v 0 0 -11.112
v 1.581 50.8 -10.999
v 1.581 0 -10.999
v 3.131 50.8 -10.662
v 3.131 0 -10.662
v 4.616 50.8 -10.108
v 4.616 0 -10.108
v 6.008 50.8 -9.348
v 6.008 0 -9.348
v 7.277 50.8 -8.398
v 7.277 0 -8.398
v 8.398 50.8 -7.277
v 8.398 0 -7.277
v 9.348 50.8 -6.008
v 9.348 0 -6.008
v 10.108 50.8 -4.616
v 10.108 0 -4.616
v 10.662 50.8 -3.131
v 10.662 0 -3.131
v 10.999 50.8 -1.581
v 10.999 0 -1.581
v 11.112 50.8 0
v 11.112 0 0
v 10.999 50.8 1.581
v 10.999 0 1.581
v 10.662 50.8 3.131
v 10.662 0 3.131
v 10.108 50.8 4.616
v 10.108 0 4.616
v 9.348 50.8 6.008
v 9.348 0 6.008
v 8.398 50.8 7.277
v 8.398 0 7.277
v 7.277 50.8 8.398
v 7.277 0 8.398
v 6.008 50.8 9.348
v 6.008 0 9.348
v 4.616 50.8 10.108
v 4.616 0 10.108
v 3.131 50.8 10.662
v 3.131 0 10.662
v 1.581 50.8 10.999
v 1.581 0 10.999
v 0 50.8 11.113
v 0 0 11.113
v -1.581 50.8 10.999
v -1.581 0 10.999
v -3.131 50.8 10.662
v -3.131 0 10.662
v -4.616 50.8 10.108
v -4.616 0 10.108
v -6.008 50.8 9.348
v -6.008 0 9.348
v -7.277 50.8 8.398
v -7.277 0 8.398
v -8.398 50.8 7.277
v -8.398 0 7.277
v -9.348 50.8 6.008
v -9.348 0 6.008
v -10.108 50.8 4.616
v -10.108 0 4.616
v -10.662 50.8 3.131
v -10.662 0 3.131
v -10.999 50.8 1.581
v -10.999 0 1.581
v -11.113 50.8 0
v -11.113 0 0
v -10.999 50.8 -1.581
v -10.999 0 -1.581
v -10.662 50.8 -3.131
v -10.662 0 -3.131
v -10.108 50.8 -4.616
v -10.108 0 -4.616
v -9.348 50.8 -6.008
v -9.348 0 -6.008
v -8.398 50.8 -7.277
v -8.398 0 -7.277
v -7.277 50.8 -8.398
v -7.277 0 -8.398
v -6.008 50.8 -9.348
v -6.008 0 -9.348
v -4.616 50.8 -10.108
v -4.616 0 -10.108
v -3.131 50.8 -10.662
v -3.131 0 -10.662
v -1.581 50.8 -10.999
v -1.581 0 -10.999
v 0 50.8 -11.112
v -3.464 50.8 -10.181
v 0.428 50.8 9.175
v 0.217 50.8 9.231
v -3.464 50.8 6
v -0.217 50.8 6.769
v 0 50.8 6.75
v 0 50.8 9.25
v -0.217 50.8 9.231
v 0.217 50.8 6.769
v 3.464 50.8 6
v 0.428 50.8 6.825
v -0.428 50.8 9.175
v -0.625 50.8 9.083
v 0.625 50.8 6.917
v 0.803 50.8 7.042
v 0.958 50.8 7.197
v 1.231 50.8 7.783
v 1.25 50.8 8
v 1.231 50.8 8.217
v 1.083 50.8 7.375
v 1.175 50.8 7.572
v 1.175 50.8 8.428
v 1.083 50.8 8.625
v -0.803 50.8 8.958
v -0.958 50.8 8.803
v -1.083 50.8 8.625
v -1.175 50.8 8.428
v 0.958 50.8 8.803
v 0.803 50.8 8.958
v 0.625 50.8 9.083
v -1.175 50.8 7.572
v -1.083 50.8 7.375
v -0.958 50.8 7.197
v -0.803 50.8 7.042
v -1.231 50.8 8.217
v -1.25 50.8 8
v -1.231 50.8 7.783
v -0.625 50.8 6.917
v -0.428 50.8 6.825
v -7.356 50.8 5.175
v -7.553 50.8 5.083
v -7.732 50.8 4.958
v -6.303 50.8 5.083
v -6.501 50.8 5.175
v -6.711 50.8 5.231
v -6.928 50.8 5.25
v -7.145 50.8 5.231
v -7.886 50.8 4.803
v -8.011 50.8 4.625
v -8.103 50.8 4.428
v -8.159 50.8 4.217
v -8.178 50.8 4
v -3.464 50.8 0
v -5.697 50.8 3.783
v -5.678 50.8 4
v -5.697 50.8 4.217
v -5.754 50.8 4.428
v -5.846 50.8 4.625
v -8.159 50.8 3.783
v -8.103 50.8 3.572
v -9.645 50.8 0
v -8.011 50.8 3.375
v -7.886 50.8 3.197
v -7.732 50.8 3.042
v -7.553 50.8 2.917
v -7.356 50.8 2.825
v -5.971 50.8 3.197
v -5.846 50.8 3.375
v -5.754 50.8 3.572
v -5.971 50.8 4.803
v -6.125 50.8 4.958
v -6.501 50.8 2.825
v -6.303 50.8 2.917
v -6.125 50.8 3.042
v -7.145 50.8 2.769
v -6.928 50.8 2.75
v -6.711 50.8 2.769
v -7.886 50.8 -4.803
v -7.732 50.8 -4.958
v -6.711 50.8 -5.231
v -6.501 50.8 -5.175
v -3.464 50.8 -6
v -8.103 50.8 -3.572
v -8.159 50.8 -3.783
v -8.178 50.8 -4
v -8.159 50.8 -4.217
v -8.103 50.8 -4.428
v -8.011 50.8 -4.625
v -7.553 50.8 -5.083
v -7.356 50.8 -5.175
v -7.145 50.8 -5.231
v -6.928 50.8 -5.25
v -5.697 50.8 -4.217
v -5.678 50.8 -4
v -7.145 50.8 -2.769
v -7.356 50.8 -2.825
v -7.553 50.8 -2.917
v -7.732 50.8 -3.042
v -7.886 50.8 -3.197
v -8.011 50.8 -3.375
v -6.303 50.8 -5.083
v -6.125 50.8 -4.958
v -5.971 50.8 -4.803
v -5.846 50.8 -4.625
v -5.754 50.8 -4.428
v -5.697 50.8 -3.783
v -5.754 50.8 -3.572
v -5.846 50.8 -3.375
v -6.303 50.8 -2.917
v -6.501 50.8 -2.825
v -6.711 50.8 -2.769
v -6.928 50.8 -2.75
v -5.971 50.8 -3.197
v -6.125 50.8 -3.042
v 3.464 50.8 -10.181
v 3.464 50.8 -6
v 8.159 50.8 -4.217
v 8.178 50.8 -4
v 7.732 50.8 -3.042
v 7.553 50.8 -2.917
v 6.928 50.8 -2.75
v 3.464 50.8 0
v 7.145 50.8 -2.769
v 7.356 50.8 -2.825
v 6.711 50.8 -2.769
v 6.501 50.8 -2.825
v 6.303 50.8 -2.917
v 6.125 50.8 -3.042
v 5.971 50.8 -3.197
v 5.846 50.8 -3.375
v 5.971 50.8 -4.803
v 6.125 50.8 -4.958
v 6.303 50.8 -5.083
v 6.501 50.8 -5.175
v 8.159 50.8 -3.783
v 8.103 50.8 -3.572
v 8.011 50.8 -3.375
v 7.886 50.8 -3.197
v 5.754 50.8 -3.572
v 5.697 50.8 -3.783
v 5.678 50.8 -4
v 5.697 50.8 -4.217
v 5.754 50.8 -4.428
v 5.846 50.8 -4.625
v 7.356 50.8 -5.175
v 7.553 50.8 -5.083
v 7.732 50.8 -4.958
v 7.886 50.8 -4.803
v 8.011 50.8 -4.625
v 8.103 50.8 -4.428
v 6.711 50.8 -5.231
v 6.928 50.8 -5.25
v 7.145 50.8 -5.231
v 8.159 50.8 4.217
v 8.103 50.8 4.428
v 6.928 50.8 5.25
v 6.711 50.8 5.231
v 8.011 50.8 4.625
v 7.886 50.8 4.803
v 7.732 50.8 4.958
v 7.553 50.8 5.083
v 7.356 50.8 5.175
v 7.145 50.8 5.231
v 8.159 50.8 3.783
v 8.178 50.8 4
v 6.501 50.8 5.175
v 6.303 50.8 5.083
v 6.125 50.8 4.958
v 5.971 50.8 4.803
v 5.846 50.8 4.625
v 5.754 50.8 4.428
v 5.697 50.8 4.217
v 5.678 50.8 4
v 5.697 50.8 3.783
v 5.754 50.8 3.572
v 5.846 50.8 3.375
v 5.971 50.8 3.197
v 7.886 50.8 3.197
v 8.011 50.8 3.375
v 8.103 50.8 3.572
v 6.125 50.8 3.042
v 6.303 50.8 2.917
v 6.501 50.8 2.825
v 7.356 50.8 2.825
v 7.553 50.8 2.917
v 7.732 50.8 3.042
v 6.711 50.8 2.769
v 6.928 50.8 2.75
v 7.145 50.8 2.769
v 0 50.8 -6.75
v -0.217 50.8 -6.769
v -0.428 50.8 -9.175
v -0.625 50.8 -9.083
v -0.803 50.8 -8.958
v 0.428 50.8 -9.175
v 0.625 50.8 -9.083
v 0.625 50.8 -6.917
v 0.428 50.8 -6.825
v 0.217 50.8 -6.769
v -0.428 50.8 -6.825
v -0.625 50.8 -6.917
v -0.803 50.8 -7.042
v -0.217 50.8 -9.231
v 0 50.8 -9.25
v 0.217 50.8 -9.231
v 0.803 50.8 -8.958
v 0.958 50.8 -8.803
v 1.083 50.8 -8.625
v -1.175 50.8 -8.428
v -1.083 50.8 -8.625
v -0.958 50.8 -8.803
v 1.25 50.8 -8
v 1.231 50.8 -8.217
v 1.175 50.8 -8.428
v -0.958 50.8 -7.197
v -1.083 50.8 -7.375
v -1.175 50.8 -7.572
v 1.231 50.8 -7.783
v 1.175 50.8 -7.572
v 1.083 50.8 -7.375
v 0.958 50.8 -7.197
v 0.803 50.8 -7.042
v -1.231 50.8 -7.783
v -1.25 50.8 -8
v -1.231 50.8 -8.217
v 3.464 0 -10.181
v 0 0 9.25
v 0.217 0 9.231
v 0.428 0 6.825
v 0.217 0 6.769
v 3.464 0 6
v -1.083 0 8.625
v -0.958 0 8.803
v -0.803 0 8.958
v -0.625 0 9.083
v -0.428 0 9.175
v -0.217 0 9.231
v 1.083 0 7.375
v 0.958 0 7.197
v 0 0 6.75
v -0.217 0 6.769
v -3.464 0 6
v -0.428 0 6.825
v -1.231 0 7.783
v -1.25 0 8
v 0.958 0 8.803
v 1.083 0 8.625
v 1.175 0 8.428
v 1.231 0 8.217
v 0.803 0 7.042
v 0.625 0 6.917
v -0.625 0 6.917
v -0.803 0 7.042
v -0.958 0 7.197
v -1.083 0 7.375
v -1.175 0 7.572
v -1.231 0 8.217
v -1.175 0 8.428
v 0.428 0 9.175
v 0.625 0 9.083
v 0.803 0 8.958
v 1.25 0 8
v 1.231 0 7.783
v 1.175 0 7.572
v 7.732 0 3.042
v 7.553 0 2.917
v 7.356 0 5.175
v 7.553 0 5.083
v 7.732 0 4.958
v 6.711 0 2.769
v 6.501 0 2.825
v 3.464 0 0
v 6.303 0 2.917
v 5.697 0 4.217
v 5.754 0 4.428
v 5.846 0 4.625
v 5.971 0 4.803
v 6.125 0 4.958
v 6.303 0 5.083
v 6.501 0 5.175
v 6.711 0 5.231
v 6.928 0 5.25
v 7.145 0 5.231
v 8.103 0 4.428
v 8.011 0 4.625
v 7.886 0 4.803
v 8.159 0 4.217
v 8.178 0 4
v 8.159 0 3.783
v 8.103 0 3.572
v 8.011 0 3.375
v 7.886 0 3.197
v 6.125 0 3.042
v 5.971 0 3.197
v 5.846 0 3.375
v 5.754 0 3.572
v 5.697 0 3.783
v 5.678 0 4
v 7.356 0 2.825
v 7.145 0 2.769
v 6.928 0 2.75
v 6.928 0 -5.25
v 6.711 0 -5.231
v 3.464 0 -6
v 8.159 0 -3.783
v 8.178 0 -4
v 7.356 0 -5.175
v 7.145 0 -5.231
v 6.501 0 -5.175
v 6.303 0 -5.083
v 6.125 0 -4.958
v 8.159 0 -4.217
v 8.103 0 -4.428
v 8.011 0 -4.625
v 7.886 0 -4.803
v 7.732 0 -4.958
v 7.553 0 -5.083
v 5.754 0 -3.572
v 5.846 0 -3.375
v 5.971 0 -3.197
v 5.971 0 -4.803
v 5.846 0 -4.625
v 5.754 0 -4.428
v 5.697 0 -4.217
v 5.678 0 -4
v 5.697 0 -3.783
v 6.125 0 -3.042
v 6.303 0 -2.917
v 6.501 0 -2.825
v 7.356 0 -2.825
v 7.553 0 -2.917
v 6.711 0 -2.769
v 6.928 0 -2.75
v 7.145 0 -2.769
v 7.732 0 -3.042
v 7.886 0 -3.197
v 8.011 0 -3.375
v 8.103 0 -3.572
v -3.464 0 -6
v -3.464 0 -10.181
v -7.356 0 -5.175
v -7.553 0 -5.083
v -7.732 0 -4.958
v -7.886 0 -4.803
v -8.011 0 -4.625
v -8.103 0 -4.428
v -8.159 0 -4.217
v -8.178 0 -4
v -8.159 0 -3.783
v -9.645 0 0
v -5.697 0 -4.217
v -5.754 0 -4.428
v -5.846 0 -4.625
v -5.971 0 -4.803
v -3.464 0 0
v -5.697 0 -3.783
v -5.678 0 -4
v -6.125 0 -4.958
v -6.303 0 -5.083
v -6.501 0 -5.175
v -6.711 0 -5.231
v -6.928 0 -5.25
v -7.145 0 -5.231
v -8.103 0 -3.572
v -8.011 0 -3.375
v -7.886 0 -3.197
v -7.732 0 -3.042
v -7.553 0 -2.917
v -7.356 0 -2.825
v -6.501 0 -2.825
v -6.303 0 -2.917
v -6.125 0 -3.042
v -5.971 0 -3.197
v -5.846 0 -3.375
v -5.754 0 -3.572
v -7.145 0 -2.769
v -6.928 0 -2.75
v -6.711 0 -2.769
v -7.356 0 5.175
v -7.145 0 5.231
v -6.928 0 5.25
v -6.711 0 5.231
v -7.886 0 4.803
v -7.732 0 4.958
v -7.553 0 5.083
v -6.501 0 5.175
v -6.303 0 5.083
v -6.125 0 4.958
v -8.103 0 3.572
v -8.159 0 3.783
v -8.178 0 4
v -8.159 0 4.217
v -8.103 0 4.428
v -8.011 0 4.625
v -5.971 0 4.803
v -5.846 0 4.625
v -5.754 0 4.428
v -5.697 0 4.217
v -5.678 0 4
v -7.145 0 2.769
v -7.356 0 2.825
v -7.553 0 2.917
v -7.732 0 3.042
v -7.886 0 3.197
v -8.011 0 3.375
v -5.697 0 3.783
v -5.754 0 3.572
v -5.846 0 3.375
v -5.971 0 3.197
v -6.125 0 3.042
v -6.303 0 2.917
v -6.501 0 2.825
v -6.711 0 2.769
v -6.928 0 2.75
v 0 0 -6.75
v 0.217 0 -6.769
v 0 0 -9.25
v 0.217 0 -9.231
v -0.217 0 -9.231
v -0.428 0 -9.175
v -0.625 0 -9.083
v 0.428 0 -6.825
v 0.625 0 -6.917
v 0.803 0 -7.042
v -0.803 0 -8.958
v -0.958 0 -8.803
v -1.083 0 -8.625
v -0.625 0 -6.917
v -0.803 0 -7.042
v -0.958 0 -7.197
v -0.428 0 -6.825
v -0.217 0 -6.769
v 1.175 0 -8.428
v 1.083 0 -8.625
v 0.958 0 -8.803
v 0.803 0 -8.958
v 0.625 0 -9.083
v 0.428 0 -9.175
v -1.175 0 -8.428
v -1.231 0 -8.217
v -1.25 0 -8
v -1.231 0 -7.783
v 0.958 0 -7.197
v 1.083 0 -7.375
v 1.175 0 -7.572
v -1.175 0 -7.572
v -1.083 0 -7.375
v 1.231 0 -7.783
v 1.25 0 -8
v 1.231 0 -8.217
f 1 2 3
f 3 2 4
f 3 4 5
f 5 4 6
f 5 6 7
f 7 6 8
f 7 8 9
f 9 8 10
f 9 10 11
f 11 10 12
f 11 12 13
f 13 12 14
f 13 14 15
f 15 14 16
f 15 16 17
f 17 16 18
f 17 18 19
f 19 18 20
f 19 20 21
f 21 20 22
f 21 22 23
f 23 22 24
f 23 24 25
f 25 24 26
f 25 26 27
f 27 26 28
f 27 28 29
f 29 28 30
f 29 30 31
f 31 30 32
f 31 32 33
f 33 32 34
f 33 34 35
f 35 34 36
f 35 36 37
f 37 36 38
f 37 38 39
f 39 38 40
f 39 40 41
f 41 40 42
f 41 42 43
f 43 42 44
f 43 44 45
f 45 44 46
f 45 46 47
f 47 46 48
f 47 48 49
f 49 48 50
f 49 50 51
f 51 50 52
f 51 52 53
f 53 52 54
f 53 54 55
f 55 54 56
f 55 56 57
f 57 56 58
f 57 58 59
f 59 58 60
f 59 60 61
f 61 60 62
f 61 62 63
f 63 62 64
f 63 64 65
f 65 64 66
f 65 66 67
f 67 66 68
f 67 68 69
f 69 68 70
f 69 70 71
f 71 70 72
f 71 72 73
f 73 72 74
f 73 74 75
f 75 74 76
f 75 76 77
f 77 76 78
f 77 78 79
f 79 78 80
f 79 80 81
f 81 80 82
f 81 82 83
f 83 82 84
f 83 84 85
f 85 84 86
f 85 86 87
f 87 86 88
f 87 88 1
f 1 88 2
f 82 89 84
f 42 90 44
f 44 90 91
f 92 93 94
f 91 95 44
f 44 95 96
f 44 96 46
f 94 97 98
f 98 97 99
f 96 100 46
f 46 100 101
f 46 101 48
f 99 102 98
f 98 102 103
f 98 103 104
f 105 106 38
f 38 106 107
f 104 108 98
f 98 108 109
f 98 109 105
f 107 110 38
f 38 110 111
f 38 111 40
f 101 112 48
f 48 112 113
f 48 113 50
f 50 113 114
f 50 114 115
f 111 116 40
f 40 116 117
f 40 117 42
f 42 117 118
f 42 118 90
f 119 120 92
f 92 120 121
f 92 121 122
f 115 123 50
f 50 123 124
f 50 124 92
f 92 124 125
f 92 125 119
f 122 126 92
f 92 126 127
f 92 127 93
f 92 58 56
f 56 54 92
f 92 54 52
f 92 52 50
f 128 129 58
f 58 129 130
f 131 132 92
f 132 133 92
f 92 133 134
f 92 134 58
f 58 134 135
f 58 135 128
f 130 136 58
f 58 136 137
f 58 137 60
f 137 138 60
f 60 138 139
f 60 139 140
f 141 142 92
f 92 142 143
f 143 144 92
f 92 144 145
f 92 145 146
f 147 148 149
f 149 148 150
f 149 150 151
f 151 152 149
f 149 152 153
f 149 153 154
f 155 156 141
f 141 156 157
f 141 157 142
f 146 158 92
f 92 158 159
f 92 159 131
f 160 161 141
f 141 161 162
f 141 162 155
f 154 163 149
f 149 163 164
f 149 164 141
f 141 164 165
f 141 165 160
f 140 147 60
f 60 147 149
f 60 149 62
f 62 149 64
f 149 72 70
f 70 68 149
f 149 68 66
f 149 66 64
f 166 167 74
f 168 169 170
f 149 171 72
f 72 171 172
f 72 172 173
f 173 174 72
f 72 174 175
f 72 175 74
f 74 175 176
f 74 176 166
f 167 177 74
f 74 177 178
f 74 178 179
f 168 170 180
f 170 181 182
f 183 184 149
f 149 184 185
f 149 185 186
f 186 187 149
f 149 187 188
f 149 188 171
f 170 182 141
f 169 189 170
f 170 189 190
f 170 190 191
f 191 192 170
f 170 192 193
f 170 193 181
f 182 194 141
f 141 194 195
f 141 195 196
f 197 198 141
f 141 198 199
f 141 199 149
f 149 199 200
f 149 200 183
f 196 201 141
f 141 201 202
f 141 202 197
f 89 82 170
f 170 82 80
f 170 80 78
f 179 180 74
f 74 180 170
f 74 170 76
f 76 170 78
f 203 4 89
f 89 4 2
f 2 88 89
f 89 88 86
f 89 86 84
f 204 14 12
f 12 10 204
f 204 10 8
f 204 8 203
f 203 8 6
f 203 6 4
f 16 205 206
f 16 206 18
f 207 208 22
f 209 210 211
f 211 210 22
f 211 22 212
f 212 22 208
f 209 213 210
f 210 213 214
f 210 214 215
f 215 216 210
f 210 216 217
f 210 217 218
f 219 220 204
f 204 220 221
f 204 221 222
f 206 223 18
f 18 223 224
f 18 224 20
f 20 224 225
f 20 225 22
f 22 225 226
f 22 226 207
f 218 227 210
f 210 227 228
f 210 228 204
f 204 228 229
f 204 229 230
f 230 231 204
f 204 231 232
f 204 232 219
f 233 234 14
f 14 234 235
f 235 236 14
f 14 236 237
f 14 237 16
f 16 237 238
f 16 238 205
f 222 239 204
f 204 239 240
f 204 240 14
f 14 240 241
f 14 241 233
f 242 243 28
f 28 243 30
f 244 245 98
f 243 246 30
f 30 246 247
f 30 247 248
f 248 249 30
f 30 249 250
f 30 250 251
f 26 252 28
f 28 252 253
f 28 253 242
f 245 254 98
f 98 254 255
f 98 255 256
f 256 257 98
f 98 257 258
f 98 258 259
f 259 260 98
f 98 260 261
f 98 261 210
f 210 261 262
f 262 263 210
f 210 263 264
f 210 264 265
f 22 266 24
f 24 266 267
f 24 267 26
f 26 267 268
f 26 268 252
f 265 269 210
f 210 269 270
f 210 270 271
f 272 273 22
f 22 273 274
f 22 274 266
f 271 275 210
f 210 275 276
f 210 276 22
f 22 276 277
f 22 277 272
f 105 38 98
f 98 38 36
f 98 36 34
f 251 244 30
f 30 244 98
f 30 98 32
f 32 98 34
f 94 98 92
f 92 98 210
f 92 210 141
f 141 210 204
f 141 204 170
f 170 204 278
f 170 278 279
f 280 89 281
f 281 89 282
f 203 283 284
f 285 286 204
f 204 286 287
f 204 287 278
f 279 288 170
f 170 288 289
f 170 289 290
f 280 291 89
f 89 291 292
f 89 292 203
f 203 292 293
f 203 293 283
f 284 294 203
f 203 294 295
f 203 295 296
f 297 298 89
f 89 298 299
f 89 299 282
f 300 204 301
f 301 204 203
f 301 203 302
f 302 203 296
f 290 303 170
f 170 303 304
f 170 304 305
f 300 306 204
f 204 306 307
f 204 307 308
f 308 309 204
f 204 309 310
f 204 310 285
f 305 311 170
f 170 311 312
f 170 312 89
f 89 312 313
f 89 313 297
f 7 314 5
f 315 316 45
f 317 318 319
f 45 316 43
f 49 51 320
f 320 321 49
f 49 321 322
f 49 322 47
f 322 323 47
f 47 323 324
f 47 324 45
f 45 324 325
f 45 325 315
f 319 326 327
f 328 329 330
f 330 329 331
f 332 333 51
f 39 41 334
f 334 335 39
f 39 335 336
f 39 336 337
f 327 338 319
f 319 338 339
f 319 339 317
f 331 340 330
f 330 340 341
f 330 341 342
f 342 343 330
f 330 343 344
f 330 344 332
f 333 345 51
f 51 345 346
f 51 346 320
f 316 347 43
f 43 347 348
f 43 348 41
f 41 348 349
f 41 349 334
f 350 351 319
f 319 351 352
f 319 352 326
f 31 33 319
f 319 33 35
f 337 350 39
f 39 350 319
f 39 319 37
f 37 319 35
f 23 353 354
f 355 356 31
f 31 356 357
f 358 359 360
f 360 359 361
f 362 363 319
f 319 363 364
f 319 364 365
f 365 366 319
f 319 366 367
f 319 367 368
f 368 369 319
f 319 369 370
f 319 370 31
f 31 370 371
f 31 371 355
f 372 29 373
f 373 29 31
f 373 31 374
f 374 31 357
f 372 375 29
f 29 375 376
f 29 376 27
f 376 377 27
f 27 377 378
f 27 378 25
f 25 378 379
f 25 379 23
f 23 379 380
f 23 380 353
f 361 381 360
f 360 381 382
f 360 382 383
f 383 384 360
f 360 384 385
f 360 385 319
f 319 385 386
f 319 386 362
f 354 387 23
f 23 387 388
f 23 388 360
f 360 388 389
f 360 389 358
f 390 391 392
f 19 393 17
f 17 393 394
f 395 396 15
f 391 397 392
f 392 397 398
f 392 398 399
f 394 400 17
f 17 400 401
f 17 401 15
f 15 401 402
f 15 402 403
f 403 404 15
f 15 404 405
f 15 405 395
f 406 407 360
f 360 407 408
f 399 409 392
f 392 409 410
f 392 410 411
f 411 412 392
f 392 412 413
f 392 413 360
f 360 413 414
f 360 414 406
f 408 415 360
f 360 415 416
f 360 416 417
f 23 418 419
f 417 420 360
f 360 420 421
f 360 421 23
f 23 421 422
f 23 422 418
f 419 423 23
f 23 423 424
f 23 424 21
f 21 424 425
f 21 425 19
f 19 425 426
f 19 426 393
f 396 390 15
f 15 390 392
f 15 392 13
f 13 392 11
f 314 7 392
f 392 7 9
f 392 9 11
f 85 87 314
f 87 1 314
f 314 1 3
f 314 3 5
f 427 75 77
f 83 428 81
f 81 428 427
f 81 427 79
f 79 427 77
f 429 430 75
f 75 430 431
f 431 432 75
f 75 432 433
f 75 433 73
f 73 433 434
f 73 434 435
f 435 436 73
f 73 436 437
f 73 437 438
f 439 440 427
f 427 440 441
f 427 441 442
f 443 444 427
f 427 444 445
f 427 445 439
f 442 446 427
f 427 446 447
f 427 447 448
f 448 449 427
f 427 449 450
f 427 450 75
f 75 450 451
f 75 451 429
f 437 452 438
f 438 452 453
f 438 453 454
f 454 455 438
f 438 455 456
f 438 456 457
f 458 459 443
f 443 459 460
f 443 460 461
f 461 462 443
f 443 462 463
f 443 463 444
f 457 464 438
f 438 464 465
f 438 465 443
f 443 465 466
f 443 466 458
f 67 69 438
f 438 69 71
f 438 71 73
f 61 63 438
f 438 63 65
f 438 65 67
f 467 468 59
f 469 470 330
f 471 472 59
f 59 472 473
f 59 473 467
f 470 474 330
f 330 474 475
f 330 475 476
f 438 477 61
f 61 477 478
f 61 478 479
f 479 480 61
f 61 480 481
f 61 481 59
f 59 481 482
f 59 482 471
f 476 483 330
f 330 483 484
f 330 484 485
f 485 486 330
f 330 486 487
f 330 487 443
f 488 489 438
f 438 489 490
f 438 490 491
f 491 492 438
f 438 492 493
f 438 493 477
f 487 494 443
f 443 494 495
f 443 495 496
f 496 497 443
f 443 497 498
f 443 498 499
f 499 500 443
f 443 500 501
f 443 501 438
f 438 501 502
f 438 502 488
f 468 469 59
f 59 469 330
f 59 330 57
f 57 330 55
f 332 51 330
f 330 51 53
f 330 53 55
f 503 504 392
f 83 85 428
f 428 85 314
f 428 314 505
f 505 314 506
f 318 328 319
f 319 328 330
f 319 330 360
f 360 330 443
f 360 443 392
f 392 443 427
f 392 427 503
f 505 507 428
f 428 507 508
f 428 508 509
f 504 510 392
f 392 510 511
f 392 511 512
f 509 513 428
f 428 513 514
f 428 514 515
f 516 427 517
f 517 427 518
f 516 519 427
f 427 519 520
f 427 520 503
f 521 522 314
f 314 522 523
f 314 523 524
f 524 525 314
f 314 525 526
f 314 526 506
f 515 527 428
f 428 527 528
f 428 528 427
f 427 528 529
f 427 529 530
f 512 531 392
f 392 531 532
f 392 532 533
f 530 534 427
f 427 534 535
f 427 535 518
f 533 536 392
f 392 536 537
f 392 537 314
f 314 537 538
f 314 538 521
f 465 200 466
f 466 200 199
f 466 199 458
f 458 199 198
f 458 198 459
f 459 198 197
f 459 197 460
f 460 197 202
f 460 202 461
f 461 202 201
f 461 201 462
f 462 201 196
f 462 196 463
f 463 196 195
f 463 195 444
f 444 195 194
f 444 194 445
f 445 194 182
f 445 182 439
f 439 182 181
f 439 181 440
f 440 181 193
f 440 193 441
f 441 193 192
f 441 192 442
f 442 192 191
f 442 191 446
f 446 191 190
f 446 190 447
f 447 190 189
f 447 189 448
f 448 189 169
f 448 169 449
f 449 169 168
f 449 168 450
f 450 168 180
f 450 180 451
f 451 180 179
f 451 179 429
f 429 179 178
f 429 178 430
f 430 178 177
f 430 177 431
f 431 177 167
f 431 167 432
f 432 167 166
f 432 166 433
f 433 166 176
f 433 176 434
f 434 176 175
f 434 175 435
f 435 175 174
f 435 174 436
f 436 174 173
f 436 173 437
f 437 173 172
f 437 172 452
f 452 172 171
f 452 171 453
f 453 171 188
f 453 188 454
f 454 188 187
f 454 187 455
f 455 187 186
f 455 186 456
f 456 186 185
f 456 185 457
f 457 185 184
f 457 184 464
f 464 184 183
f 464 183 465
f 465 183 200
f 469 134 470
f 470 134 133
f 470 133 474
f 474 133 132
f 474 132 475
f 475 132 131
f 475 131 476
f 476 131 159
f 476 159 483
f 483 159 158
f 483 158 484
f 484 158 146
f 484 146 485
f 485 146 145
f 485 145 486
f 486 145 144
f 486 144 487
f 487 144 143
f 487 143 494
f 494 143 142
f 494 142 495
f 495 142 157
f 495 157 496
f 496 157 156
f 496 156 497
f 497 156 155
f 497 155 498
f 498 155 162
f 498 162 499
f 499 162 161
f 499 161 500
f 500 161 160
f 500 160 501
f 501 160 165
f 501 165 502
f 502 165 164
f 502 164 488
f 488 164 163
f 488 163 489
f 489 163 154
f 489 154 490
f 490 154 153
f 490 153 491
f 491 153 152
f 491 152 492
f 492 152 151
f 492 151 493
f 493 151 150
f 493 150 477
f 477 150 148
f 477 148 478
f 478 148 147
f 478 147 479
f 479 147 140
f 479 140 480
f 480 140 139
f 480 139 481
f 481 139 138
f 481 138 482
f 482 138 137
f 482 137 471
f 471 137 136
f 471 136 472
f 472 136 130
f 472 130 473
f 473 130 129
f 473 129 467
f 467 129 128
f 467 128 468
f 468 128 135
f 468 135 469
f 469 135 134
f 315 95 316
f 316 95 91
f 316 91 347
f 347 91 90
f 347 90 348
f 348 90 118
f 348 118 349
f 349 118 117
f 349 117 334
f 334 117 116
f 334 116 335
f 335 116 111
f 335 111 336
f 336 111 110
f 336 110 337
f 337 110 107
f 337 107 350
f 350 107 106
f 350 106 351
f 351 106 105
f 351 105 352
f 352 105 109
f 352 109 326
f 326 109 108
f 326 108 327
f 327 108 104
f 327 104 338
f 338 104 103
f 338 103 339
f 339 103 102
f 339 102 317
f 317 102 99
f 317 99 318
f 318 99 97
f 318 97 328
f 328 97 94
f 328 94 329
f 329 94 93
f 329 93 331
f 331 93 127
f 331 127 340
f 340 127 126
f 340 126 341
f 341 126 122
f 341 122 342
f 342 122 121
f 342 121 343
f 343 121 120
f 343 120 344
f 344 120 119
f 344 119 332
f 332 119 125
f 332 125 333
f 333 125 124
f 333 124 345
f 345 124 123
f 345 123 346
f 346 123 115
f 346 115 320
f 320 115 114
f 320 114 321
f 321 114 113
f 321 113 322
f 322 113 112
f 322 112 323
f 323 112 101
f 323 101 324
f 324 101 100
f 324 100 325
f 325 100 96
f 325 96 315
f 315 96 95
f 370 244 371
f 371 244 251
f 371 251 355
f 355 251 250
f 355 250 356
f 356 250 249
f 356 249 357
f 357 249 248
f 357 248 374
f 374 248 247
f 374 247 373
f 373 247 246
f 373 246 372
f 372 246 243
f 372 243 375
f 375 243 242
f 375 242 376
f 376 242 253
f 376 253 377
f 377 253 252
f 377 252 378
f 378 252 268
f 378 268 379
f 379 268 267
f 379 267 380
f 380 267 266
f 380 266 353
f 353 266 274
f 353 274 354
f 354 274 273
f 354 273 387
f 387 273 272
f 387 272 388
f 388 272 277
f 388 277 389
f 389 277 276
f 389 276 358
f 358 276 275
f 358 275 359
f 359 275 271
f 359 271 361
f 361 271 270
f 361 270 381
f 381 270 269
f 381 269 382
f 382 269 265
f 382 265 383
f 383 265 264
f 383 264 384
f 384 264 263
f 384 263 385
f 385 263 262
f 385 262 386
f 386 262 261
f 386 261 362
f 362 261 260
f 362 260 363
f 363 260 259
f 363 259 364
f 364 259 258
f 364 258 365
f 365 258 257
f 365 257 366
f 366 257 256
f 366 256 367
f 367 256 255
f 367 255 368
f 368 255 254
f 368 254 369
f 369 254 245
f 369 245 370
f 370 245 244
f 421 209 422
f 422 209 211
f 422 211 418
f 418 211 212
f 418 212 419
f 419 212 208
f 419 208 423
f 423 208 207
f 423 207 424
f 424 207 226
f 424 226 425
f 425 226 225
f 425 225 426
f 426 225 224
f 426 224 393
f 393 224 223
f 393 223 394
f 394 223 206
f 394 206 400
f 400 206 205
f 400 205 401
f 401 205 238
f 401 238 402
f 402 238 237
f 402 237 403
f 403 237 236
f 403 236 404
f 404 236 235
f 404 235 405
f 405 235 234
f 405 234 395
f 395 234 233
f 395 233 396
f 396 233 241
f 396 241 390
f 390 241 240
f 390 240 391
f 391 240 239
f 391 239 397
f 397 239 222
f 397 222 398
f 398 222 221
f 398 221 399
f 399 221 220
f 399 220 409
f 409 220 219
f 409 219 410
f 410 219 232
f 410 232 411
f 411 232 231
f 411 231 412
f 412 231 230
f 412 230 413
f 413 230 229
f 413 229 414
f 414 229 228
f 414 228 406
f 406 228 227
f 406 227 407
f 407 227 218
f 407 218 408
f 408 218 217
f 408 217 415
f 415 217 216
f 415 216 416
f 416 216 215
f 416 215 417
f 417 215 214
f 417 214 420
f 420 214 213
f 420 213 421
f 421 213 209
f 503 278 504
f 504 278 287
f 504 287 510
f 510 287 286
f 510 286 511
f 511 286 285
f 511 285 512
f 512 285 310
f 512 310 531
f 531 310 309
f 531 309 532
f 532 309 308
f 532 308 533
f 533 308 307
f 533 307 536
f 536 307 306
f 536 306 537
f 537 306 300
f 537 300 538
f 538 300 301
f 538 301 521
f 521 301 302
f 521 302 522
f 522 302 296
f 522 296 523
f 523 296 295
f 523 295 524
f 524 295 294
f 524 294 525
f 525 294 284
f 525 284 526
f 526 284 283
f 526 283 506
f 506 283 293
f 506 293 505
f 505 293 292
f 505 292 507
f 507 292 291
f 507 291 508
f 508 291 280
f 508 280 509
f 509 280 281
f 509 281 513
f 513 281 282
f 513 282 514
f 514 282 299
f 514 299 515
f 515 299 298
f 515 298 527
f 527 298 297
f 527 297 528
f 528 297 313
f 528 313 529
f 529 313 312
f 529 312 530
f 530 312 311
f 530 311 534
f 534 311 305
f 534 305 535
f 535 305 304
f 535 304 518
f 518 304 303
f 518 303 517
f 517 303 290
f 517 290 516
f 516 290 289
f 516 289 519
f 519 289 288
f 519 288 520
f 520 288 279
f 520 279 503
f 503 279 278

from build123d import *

# Parameters (mm, degrees)
SKETCH1_R             = 11.1125
BOSS_EXTRUDE1_DEPTH   = 50.8
M3X0_5_TAPPED_HOLE1_D = 2.5


with BuildPart() as part:
    # Sketch1 → Boss-Extrude1 (new body)
    with BuildSketch(Plane(origin=(0, 0, 0), x_dir=(1, 0, 0), z_dir=(0, 1, 0))):
        Circle(SKETCH1_R)
    extrude(amount=BOSS_EXTRUDE1_DEPTH)

    # M3x0.5 Tapped Hole1 (through all)
    with Locations(Plane(origin=(0, 50.8, 0), x_dir=(1, 0, 0), z_dir=(0, 1, 0))):
        with Locations((0, 8), (6.92820323, 4), (6.92820323, -4), (0, -8), (-6.92820323, -4), (-6.92820323, 4)):
            Hole(M3X0_5_TAPPED_HOLE1_D / 2)


solid = part.part
